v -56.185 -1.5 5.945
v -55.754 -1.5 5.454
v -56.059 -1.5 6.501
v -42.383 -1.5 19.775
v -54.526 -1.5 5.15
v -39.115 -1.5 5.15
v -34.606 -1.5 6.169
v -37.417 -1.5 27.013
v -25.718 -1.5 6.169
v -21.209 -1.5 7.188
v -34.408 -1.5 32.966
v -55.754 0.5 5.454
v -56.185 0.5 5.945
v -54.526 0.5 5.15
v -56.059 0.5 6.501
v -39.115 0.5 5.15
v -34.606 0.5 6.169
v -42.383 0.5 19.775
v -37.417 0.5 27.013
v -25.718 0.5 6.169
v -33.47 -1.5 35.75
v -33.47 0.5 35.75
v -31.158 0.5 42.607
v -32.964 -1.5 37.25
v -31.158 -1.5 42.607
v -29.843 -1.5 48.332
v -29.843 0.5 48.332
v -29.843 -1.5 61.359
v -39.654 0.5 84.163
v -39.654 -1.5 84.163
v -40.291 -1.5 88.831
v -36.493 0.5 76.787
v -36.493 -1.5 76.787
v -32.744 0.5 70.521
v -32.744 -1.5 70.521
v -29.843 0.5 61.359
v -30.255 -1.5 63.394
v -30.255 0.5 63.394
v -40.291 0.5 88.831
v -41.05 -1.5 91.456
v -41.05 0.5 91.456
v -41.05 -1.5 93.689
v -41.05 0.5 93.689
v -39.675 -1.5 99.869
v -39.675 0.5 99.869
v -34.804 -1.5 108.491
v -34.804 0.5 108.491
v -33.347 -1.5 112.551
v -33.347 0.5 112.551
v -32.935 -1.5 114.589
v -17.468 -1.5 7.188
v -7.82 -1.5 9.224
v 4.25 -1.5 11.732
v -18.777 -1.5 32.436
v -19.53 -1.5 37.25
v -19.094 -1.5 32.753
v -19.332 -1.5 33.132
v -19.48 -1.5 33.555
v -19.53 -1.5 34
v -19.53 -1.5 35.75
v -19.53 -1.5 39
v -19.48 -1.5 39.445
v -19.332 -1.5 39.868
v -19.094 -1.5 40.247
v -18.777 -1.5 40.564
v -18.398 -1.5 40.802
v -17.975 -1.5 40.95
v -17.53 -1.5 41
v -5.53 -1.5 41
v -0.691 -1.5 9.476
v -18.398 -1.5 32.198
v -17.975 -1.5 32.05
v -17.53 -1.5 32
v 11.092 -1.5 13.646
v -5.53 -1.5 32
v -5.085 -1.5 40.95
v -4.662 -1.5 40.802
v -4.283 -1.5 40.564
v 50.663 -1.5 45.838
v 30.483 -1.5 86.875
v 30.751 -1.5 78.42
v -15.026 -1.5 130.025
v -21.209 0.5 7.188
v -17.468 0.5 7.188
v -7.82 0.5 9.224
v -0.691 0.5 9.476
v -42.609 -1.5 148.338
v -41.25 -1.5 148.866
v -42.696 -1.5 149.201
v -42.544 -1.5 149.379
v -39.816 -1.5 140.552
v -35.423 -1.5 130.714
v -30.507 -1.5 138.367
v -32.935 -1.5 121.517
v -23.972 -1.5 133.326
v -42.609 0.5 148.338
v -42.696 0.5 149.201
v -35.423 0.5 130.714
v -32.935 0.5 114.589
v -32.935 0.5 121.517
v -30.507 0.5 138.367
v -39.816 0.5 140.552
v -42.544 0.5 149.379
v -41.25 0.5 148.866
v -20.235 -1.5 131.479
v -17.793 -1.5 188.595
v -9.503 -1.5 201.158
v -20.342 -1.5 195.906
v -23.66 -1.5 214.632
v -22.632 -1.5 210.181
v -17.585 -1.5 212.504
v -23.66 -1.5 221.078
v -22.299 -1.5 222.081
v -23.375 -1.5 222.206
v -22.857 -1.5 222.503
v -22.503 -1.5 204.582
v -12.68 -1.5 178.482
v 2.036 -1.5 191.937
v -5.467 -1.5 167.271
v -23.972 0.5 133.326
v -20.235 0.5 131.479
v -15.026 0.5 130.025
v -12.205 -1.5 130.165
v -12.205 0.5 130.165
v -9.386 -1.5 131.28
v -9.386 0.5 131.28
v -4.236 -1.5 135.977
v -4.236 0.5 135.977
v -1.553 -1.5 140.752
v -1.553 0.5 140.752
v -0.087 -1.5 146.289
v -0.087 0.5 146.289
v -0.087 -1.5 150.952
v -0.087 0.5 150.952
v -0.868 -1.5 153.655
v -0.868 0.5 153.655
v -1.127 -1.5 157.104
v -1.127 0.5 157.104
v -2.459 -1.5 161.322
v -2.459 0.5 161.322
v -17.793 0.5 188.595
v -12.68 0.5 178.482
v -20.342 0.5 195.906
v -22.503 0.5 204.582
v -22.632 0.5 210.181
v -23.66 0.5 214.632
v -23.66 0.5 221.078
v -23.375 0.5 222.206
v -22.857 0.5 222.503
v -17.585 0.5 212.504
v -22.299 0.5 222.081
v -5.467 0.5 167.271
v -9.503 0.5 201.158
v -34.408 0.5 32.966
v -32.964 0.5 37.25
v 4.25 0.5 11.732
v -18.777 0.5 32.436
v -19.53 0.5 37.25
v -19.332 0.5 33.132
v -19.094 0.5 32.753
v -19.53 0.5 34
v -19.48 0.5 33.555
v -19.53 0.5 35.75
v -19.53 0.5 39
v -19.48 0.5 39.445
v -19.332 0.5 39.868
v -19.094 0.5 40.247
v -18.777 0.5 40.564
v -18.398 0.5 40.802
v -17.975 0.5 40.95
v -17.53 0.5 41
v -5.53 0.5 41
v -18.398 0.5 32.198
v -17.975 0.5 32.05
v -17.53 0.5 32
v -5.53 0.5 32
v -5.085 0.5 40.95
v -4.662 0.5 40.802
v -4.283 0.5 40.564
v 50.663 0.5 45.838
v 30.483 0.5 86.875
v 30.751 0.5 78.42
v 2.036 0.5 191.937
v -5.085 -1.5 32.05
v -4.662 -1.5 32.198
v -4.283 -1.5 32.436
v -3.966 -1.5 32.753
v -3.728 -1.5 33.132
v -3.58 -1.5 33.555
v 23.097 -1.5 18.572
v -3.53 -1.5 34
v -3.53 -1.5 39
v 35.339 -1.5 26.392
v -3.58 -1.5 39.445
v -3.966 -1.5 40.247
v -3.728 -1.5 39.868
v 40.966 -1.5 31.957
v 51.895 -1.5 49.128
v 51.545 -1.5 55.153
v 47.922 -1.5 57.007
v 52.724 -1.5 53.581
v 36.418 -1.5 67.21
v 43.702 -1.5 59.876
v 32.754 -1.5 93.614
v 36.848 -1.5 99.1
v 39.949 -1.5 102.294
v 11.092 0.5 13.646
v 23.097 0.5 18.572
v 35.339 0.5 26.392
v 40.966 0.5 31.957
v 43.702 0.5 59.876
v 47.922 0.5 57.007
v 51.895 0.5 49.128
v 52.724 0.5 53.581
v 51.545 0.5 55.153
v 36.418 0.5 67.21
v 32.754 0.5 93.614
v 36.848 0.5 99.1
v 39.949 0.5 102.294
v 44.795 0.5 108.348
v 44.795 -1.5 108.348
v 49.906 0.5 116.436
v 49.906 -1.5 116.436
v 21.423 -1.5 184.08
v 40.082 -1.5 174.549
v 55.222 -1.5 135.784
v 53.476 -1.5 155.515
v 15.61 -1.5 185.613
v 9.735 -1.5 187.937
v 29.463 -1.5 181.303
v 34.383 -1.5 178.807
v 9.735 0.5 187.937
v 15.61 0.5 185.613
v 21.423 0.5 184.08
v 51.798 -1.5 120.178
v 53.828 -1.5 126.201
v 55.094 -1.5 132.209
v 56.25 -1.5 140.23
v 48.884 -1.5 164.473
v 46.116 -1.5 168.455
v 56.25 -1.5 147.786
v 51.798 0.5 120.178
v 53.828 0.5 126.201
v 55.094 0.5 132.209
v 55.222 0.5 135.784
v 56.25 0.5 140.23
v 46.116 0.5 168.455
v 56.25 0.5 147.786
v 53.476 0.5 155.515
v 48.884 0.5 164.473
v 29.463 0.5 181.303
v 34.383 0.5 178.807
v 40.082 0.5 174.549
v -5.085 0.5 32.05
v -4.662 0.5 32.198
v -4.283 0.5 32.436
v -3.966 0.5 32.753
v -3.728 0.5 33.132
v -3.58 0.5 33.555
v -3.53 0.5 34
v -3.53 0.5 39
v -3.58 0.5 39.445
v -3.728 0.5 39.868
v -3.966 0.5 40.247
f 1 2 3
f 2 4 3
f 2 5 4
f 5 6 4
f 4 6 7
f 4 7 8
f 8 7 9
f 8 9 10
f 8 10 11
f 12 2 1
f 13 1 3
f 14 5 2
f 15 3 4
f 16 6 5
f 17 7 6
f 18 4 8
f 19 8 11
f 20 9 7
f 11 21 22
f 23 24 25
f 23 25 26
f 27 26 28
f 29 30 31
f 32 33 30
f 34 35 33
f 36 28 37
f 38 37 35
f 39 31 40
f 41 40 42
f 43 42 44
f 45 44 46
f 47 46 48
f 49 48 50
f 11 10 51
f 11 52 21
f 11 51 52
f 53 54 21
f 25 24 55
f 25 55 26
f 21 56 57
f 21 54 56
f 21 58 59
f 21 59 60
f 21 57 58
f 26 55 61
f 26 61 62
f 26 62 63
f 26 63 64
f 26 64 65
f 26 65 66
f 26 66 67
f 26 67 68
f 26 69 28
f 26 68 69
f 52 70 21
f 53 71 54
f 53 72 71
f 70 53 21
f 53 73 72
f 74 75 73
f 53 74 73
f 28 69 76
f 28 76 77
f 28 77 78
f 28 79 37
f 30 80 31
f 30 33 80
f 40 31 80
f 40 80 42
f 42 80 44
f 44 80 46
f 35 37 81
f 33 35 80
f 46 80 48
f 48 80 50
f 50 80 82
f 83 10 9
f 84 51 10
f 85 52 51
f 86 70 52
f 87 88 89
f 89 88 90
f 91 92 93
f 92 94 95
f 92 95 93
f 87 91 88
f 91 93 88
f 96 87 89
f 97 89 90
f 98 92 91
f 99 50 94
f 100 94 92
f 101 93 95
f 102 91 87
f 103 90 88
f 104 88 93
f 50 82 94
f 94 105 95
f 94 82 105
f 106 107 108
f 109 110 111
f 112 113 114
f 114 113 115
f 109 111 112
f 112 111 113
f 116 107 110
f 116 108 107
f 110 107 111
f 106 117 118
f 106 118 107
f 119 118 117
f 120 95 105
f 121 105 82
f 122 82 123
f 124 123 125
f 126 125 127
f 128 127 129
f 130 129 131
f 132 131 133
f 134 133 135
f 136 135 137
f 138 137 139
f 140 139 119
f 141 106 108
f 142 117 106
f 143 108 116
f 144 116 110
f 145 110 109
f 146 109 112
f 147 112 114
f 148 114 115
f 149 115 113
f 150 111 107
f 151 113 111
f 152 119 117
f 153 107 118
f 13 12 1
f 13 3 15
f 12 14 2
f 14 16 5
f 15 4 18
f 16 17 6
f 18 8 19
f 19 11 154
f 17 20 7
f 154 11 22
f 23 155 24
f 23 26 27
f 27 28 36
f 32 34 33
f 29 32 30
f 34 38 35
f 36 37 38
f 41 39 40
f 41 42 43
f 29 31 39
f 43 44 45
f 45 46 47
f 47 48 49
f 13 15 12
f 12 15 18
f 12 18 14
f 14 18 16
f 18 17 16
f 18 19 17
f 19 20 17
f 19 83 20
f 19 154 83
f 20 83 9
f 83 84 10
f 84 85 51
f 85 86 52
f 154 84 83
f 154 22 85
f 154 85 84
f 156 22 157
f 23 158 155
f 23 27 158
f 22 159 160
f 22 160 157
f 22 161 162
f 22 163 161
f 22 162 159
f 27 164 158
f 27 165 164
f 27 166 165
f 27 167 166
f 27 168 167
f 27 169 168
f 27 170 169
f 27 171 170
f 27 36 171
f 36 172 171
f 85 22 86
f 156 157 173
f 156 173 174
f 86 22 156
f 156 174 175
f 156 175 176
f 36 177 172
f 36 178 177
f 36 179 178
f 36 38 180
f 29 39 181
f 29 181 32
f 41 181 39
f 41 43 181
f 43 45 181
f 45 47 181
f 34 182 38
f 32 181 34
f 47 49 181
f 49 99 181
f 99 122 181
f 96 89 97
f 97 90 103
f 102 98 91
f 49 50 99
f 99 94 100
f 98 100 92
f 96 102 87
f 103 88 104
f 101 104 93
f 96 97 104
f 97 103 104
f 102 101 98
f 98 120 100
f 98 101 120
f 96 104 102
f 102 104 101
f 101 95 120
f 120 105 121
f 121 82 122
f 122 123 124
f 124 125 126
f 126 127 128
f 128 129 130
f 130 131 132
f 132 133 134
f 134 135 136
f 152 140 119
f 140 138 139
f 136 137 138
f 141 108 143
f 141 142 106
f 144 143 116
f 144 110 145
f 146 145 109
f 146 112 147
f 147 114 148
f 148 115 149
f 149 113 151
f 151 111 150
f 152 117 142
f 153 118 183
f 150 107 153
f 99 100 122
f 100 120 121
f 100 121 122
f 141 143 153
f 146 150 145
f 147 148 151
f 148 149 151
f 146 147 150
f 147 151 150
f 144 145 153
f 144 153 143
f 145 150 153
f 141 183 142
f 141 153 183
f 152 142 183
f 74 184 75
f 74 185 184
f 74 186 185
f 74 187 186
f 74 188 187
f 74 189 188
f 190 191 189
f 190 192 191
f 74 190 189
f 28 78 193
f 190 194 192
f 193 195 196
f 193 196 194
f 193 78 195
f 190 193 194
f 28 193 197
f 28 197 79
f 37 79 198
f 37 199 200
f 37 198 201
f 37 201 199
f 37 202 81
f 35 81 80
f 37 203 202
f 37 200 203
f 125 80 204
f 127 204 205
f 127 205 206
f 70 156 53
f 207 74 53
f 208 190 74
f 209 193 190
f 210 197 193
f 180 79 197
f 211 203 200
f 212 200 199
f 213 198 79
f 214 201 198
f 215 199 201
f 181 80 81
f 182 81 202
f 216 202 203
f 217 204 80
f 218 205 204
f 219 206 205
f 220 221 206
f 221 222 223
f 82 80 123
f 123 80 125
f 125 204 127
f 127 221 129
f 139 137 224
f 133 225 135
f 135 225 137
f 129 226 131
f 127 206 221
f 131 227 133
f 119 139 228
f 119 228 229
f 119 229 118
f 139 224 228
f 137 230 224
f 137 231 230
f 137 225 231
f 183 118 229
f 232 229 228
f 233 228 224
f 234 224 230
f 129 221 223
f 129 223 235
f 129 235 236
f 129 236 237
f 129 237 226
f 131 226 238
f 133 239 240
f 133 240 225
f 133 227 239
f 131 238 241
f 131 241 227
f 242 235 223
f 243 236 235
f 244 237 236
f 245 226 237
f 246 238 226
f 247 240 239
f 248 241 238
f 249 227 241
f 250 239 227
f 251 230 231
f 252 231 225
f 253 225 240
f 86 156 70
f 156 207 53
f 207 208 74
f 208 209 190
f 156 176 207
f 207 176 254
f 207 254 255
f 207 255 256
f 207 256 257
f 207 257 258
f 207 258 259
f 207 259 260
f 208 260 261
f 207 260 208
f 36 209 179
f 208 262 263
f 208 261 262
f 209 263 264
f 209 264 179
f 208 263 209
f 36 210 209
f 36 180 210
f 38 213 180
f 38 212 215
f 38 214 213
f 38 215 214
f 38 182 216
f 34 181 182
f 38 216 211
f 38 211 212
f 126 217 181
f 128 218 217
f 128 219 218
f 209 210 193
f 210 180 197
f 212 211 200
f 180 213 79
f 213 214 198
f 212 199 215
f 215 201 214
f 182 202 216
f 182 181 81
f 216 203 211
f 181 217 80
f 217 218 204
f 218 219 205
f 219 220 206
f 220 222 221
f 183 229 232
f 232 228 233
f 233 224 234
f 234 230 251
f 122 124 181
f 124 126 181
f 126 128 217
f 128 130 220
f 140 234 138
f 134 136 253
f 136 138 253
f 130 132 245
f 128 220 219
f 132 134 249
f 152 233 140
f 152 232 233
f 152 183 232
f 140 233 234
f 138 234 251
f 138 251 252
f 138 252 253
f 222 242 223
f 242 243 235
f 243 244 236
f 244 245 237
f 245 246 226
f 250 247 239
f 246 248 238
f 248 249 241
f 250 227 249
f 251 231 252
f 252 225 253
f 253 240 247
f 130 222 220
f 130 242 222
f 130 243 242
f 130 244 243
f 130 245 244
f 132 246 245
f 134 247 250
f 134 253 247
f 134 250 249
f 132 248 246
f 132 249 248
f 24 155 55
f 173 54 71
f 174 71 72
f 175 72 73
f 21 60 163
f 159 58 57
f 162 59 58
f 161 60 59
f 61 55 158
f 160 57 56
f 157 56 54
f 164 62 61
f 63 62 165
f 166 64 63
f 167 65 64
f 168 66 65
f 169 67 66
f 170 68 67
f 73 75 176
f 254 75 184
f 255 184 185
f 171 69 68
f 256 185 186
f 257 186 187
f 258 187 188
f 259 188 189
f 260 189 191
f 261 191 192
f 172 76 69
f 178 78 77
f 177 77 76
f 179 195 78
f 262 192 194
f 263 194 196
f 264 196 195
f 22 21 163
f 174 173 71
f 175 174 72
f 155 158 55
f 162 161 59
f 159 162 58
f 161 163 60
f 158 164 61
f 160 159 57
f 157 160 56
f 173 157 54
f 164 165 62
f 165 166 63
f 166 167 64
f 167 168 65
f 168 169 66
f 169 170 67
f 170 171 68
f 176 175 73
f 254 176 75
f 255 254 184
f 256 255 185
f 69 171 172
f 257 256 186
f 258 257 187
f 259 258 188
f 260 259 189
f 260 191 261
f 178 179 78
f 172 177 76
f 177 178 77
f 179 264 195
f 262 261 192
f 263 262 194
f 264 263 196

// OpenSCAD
// file: shape_pts.scad
// Right Flame (FR) traced from images/generate_an_image_of_this.png via octolamp-lamp-base.
// Exterior housing: 120.00 x 225.00 mm (114.00 x 219.00 mm interior cavity + 3.00 mm Octolamp wall).
// Matches the 1.5x flame-to-letter height proportion next to the 100 x 150 mm Engenesis letters.

shape_w = 114.00;
shape_h = 219.00;
rec_chip_x = -12.00;
rec_chip_z = 62.00;
rec_cable_x = -12.00;
rec_ziptie_z = 33.50;
rec_keyhole_z = 19.50;
rec_slit_dir = -1;
rec_snap_top_x = -14.50;
rec_snap_top_z = 126.40;
rec_snap_bot_x = -42.00;
rec_clip_x = -38.00;
rec_pillars = [[18.0, 88.0], [12.0, 44.0], [26.0, 128.0], [12.0, 164.0]];

shape_pts = [[-57.000,1.338],[-56.163,0.382],[-54.617,0.000],[-39.031,0.000],[-34.522,1.019],[-25.634,1.019],[-21.125,2.038],[-17.390,2.038],[-7.729,4.077],[-0.515,4.332],[4.508,6.625],[11.336,8.536],[23.444,13.504],[35.810,21.403],[41.542,27.072],[51.332,41.086],[52.620,44.526],[53.522,49.367],[52.041,51.342],[48.305,53.253],[44.183,56.056],[37.034,63.254],[31.495,74.210],[31.237,82.364],[33.427,88.861],[37.420,94.212],[40.512,97.397],[45.407,103.512],[50.559,111.666],[52.492,115.488],[54.553,121.603],[55.841,127.718],[55.969,131.285],[57.000,135.744],[57.000,143.516],[54.166,151.414],[49.529,160.460],[46.695,164.537],[40.576,170.716],[34.780,175.047],[29.756,177.595],[21.641,180.398],[15.844,181.927],[10.047,184.220],[2.447,188.169],[-8.953,197.278],[-16.939,208.490],[-21.705,218.172],[-22.800,219.000],[-24.024,218.299],[-24.410,216.771],[-24.410,210.146],[-23.380,205.687],[-23.251,200.081],[-21.061,191.291],[-18.485,183.901],[-13.332,173.709],[-6.119,162.498],[-3.156,156.638],[-1.868,152.561],[-1.610,149.121],[-0.837,146.446],[-0.837,141.987],[-2.254,136.636],[-4.831,132.050],[-9.790,127.527],[-12.366,126.508],[-14.942,126.380],[-19.966,127.782],[-23.573,129.565],[-30.014,134.534],[-40.834,145.108],[-42.766,145.873],[-43.475,145.045],[-43.346,143.771],[-40.512,135.872],[-36.132,126.062],[-33.685,117.017],[-33.685,110.264],[-34.071,108.353],[-35.488,104.404],[-40.383,95.741],[-41.800,89.371],[-41.800,86.950],[-41.027,84.275],[-40.383,79.561],[-37.163,72.045],[-33.427,65.802],[-30.980,58.795],[-30.593,56.884],[-30.593,44.017],[-31.881,38.411],[-35.102,28.856],[-38.064,22.996],[-42.959,15.861],[-56.742,2.484]];
shape_paths = [[0, 1, 2, 3, 4, 5, 6, 7, 8, 9, 10, 11, 12, 13, 14, 15, 16, 17, 18, 19, 20, 21, 22, 23, 24, 25, 26, 27, 28, 29, 30, 31, 32, 33, 34, 35, 36, 37, 38, 39, 40, 41, 42, 43, 44, 45, 46, 47, 48, 49, 50, 51, 52, 53, 54, 55, 56, 57, 58, 59, 60, 61, 62, 63, 64, 65, 66, 67, 68, 69, 70, 71, 72, 73, 74, 75, 76, 77, 78, 79, 80, 81, 82, 83, 84, 85, 86, 87, 88, 89, 90, 91, 92, 93, 94, 95]];

diffuser_shape_pts = [[-57.000,1.338],[-56.163,0.382],[-54.617,0.000],[-39.031,0.000],[-34.522,1.019],[-25.634,1.019],[-21.125,2.038],[-17.390,2.038],[-7.729,4.077],[-0.515,4.332],[4.508,6.625],[11.336,8.536],[23.444,13.504],[35.810,21.403],[41.542,27.072],[51.332,41.086],[52.620,44.526],[53.522,49.367],[52.041,51.342],[48.305,53.253],[44.183,56.056],[37.034,63.254],[31.495,74.210],[31.237,82.364],[33.427,88.861],[37.420,94.212],[40.512,97.397],[45.407,103.512],[50.559,111.666],[52.492,115.488],[54.553,121.603],[55.841,127.718],[55.969,131.285],[57.000,135.744],[57.000,143.516],[54.166,151.414],[49.529,160.460],[46.695,164.537],[40.576,170.716],[34.780,175.047],[29.756,177.595],[21.641,180.398],[15.844,181.927],[10.047,184.220],[2.447,188.169],[-8.953,197.278],[-16.939,208.490],[-21.705,218.172],[-22.800,219.000],[-24.024,218.299],[-24.410,216.771],[-24.410,210.146],[-23.380,205.687],[-23.251,200.081],[-21.061,191.291],[-18.485,183.901],[-13.332,173.709],[-6.119,162.498],[-3.156,156.638],[-1.868,152.561],[-1.610,149.121],[-0.837,146.446],[-0.837,141.987],[-2.254,136.636],[-4.831,132.050],[-9.790,127.527],[-12.366,126.508],[-14.942,126.380],[-19.966,127.782],[-23.573,129.565],[-30.014,134.534],[-40.834,145.108],[-42.766,145.873],[-43.475,145.045],[-43.346,143.771],[-40.512,135.872],[-36.132,126.062],[-33.685,117.017],[-33.685,110.264],[-34.071,108.353],[-35.488,104.404],[-40.383,95.741],[-41.800,89.371],[-41.800,86.950],[-41.027,84.275],[-40.383,79.561],[-37.163,72.045],[-33.427,65.802],[-30.980,58.795],[-30.593,56.884],[-30.593,44.017],[-31.881,38.411],[-35.102,28.856],[-38.064,22.996],[-42.959,15.861],[-56.742,2.484]];
diffuser_shape_paths = [[0, 1, 2, 3, 4, 5, 6, 7, 8, 9, 10, 11, 12, 13, 14, 15, 16, 17, 18, 19, 20, 21, 22, 23, 24, 25, 26, 27, 28, 29, 30, 31, 32, 33, 34, 35, 36, 37, 38, 39, 40, 41, 42, 43, 44, 45, 46, 47, 48, 49, 50, 51, 52, 53, 54, 55, 56, 57, 58, 59, 60, 61, 62, 63, 64, 65, 66, 67, 68, 69, 70, 71, 72, 73, 74, 75, 76, 77, 78, 79, 80, 81, 82, 83, 84, 85, 86, 87, 88, 89, 90, 91, 92, 93, 94, 95]];

module shape_2d(pts = shape_pts) {
    polygon(points = pts, paths = shape_paths);
}

module diffuser_shape_2d(pts = diffuser_shape_pts) {
    polygon(points = pts, paths = diffuser_shape_paths);
}
// main file
// Right Flame ("FR") internal white reflector plate (2.00 mm thick, 16 x 9 mm cable pocket + 1.50 mm side-entry wire slit).
// Opens and exports standalone in OpenSCAD / OpenSCAD.js.

use <lamp_core.scad>

render_lamp_part("reflector");
